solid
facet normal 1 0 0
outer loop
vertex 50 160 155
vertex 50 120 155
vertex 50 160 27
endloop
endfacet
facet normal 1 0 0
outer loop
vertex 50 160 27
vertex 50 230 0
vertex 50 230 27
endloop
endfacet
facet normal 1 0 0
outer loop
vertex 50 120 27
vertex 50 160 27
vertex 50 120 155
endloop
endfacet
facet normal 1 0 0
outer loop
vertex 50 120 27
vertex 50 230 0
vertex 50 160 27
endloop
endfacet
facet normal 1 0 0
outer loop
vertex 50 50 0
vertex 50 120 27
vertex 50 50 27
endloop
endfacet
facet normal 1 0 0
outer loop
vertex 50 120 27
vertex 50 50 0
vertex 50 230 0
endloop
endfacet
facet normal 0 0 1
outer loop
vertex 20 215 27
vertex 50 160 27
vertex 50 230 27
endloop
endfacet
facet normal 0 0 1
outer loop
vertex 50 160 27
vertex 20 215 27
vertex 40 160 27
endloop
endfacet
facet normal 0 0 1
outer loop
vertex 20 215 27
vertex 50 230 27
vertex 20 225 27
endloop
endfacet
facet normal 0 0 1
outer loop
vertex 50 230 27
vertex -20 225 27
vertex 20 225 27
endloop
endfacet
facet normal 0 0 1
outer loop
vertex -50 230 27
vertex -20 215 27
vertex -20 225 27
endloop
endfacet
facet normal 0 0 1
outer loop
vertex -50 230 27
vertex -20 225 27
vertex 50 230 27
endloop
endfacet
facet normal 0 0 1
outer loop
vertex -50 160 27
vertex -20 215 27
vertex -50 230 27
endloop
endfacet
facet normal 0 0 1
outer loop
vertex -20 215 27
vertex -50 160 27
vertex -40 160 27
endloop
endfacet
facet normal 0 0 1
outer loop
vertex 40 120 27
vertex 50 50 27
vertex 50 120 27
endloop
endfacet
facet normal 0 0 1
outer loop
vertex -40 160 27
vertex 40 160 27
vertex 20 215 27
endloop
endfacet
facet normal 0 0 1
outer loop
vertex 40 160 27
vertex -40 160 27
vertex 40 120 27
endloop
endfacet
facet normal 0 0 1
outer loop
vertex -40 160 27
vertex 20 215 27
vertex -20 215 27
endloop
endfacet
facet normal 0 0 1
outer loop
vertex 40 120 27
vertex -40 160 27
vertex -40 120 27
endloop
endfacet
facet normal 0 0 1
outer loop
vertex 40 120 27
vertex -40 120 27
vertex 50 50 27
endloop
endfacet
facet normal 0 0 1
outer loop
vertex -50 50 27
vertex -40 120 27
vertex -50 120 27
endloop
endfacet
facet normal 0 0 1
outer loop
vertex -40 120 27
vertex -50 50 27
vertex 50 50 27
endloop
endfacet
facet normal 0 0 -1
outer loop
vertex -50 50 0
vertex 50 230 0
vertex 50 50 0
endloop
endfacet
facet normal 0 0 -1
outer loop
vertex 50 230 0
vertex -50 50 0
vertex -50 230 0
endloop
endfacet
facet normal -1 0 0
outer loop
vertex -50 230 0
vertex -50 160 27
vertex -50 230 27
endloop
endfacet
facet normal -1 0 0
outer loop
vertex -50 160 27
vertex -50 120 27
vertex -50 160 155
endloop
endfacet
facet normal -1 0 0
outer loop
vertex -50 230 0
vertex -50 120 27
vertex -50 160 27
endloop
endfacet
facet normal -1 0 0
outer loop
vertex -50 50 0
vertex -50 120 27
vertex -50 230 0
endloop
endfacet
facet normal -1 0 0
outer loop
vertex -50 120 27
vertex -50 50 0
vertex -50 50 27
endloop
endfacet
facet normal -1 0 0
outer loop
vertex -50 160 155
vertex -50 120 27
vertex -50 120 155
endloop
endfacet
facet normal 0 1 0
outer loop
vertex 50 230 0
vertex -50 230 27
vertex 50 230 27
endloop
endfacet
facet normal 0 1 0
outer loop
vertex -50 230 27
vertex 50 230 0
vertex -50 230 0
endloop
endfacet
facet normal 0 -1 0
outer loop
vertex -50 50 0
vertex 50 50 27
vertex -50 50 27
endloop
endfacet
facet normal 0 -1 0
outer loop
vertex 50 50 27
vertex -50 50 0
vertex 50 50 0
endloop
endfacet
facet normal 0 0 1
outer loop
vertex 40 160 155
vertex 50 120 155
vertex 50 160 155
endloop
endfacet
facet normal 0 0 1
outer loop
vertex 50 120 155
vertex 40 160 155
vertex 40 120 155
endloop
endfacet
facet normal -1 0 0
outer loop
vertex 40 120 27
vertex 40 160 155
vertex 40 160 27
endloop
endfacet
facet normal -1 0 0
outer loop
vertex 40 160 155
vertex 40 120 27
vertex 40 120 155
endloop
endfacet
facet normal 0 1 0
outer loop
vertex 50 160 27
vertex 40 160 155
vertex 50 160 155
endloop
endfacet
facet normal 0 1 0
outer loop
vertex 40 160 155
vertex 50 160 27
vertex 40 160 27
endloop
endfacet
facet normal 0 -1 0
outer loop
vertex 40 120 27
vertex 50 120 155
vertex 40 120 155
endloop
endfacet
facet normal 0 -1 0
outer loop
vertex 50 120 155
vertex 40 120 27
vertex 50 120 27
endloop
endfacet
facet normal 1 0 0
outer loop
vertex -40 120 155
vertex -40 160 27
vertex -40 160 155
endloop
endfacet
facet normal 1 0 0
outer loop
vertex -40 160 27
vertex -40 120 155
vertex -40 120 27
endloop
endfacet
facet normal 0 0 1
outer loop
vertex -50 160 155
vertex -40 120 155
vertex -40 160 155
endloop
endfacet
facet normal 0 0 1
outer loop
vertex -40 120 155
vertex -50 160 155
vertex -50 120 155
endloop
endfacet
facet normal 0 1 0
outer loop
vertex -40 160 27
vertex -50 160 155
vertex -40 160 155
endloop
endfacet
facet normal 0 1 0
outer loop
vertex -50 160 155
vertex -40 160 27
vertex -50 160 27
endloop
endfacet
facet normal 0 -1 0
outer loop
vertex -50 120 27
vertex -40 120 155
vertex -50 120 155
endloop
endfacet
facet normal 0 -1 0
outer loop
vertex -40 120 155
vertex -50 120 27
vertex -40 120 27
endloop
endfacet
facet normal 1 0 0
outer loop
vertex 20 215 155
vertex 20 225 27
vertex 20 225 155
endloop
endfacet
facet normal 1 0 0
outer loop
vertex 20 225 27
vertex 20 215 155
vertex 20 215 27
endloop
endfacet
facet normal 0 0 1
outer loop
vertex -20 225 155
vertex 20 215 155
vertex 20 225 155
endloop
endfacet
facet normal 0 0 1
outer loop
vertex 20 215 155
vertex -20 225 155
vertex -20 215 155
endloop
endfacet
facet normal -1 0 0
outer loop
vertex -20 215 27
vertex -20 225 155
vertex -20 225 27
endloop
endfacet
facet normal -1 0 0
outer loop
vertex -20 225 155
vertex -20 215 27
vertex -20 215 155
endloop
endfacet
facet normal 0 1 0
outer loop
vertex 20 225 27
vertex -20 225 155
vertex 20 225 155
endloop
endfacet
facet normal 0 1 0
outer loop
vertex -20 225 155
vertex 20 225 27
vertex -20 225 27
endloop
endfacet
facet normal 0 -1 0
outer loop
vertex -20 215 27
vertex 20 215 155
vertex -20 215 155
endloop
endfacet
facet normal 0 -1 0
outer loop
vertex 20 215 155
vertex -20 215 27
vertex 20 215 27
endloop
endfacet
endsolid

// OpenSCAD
union() {
  color("#c09dbf")
  translate([0, 50+90, 13.5])
    cube([ 100, 180, 27], center=true);
  color("#5fa4df")
  translate([ 45, 50+90, 64+27])
    cube([ 10, 40, 128], center=true);
  color("#5fa4df")
  translate([ -45, 50+90, 64+27])
    cube([ 10, 40, 128], center=true);
  color("#5fa4df")
  translate([ 0, 220, 64+27])
    cube([ 40, 10, 128], center=true);
}
